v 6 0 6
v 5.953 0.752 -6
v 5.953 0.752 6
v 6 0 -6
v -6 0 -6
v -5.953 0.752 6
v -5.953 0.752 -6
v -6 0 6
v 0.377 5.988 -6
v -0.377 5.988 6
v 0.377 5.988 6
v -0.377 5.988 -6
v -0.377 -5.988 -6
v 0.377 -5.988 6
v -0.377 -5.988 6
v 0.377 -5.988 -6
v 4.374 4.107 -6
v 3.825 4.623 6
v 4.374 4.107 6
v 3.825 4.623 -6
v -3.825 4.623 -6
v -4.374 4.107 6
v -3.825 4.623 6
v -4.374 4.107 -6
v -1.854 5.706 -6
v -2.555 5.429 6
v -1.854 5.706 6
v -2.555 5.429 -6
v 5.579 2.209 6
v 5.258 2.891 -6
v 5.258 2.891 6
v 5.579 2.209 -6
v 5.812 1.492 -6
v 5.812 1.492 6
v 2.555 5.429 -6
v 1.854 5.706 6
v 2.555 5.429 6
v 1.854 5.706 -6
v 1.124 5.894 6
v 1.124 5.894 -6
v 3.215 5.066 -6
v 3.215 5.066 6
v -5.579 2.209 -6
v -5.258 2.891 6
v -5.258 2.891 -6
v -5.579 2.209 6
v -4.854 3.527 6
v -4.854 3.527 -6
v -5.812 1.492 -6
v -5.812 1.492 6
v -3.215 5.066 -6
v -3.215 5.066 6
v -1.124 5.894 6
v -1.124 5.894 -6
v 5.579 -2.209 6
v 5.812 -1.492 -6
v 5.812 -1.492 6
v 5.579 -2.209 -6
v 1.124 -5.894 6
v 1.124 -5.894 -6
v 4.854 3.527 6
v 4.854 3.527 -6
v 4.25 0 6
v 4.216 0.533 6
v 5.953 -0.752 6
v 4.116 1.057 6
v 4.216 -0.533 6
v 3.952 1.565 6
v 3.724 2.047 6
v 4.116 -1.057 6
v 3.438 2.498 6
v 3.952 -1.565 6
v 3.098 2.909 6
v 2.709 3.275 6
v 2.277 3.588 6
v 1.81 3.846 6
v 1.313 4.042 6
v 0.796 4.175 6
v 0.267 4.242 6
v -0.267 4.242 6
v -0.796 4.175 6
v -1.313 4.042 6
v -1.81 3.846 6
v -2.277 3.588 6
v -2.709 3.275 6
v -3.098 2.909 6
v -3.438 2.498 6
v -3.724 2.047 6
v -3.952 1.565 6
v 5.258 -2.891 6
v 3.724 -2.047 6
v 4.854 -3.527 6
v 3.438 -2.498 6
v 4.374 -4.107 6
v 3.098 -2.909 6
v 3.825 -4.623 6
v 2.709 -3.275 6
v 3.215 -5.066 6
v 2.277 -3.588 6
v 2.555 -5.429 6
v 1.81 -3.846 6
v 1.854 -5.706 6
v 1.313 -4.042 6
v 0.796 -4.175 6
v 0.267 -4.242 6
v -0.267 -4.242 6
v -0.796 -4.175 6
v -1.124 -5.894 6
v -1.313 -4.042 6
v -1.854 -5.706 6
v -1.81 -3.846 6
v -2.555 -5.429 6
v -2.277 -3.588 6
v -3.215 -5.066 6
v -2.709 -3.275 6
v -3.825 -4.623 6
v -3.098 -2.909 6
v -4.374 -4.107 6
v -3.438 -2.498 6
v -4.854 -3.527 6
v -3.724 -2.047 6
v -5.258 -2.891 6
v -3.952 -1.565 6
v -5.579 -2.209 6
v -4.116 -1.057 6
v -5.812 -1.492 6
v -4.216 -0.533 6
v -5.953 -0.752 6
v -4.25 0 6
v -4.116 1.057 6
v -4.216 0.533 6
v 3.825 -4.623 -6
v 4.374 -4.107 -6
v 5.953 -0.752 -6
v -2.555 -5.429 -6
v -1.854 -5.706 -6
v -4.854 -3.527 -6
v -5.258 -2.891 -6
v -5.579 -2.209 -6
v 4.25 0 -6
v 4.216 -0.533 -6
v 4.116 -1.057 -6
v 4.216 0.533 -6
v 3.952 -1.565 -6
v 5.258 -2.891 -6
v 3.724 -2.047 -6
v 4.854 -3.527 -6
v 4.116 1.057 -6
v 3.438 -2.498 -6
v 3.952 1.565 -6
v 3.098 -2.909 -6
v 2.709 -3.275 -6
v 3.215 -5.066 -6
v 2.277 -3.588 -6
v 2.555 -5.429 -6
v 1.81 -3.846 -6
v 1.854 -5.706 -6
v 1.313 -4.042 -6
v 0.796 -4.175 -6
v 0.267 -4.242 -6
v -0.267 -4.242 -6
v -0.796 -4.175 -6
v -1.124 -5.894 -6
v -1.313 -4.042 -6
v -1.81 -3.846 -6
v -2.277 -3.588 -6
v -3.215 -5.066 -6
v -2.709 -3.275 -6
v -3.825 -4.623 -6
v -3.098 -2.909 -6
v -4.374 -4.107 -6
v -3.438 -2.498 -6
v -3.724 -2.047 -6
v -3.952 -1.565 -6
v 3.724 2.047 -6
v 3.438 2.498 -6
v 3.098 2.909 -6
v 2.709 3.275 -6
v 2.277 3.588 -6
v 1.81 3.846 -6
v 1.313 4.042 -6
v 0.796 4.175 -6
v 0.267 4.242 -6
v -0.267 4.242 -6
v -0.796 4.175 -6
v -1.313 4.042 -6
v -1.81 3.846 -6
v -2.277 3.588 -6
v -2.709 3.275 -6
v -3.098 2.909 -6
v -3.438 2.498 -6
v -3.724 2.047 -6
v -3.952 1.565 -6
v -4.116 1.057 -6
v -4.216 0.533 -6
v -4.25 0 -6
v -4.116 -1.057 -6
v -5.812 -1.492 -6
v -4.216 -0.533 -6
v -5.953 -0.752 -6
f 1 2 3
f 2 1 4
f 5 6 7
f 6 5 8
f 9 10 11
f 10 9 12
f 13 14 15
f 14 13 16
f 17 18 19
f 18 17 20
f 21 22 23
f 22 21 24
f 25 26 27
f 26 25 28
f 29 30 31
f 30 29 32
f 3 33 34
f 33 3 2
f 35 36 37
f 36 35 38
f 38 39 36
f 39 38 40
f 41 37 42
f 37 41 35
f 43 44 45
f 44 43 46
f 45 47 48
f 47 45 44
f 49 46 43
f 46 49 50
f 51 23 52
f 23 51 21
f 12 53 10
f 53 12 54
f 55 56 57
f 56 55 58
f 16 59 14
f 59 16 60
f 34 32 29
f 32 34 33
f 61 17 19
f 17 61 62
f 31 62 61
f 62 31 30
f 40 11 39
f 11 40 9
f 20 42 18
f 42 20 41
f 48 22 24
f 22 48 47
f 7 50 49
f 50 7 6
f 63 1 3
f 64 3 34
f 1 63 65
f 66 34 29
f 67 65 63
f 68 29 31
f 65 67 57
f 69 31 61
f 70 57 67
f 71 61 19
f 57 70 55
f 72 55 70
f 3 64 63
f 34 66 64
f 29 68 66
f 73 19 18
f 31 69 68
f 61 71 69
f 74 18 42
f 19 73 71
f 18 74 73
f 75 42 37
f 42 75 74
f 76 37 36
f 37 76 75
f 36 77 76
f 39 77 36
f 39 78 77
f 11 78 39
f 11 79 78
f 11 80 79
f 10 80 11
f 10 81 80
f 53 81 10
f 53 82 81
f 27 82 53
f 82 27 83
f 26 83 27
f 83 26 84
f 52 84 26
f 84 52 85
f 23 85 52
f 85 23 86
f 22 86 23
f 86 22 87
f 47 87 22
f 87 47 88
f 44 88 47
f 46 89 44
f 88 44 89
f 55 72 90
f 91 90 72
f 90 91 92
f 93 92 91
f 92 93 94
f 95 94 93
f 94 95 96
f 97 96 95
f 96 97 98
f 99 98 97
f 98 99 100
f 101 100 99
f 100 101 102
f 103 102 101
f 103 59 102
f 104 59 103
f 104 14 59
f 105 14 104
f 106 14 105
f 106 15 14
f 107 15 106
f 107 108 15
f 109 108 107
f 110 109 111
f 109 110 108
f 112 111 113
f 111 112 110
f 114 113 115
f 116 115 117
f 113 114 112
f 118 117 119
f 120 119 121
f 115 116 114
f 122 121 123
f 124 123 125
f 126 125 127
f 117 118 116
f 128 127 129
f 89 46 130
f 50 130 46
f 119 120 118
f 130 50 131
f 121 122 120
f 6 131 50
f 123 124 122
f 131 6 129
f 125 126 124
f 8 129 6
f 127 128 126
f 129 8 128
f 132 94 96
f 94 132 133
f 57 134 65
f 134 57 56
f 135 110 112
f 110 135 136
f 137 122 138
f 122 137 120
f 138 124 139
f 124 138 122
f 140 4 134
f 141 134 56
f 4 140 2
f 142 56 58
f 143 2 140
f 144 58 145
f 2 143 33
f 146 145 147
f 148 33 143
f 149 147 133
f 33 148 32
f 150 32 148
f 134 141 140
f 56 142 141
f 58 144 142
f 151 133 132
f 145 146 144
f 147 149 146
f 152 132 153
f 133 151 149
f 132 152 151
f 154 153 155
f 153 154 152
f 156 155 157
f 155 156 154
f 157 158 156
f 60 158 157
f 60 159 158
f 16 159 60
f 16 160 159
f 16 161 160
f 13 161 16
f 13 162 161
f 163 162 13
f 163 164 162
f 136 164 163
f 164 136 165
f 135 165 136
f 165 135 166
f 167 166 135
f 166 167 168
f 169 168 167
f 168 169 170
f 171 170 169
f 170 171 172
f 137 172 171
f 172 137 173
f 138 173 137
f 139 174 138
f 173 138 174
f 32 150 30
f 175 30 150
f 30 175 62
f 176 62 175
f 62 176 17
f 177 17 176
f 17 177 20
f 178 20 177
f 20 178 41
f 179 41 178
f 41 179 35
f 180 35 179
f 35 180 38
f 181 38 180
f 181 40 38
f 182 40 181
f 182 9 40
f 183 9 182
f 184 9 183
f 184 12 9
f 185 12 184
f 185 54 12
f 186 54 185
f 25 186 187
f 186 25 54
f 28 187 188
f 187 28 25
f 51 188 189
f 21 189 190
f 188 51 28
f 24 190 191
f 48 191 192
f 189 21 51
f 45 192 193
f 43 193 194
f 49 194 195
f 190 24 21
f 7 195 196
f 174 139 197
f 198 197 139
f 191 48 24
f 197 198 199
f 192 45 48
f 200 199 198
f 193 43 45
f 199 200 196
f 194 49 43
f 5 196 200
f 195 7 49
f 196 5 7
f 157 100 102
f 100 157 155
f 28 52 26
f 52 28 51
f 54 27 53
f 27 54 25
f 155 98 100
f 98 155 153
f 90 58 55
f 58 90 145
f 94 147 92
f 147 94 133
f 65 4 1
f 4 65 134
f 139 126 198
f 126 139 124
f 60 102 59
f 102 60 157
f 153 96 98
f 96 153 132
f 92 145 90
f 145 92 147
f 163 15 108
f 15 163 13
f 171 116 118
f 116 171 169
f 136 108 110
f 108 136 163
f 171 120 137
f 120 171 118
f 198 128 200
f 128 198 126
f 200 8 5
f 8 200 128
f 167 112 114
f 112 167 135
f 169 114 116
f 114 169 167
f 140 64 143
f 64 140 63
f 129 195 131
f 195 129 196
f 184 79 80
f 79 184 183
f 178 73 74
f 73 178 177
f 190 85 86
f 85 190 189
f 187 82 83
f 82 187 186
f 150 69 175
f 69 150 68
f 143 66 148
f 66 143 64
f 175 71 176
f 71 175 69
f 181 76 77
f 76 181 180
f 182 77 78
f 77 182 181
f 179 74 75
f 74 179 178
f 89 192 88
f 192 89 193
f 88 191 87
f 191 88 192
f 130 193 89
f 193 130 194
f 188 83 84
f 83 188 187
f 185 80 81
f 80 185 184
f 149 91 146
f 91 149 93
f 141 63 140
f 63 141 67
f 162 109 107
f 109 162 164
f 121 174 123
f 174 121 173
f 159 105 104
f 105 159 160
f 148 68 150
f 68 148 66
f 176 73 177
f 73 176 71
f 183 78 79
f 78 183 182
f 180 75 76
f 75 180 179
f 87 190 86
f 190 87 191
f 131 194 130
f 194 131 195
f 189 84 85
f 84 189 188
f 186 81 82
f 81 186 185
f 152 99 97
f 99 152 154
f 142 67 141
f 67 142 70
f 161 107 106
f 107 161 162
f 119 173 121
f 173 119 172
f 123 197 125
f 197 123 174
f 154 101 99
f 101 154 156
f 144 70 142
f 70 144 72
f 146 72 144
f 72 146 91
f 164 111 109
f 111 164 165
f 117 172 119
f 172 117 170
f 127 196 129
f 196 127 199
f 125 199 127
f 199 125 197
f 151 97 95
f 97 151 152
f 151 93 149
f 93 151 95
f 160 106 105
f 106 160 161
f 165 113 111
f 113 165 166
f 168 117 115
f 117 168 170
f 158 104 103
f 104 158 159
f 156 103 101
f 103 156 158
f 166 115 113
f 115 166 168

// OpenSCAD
$fn = 50;


difference() {
	union() {
		translate(v = [0, 0, -6.0000000000]) {
			cylinder(h = 12, r = 6.0000000000);
		}
	}
	union() {
		translate(v = [0, 0, -100.0000000000]) {
			cylinder(h = 200, r = 4.2500000000);
		}
	}
}
